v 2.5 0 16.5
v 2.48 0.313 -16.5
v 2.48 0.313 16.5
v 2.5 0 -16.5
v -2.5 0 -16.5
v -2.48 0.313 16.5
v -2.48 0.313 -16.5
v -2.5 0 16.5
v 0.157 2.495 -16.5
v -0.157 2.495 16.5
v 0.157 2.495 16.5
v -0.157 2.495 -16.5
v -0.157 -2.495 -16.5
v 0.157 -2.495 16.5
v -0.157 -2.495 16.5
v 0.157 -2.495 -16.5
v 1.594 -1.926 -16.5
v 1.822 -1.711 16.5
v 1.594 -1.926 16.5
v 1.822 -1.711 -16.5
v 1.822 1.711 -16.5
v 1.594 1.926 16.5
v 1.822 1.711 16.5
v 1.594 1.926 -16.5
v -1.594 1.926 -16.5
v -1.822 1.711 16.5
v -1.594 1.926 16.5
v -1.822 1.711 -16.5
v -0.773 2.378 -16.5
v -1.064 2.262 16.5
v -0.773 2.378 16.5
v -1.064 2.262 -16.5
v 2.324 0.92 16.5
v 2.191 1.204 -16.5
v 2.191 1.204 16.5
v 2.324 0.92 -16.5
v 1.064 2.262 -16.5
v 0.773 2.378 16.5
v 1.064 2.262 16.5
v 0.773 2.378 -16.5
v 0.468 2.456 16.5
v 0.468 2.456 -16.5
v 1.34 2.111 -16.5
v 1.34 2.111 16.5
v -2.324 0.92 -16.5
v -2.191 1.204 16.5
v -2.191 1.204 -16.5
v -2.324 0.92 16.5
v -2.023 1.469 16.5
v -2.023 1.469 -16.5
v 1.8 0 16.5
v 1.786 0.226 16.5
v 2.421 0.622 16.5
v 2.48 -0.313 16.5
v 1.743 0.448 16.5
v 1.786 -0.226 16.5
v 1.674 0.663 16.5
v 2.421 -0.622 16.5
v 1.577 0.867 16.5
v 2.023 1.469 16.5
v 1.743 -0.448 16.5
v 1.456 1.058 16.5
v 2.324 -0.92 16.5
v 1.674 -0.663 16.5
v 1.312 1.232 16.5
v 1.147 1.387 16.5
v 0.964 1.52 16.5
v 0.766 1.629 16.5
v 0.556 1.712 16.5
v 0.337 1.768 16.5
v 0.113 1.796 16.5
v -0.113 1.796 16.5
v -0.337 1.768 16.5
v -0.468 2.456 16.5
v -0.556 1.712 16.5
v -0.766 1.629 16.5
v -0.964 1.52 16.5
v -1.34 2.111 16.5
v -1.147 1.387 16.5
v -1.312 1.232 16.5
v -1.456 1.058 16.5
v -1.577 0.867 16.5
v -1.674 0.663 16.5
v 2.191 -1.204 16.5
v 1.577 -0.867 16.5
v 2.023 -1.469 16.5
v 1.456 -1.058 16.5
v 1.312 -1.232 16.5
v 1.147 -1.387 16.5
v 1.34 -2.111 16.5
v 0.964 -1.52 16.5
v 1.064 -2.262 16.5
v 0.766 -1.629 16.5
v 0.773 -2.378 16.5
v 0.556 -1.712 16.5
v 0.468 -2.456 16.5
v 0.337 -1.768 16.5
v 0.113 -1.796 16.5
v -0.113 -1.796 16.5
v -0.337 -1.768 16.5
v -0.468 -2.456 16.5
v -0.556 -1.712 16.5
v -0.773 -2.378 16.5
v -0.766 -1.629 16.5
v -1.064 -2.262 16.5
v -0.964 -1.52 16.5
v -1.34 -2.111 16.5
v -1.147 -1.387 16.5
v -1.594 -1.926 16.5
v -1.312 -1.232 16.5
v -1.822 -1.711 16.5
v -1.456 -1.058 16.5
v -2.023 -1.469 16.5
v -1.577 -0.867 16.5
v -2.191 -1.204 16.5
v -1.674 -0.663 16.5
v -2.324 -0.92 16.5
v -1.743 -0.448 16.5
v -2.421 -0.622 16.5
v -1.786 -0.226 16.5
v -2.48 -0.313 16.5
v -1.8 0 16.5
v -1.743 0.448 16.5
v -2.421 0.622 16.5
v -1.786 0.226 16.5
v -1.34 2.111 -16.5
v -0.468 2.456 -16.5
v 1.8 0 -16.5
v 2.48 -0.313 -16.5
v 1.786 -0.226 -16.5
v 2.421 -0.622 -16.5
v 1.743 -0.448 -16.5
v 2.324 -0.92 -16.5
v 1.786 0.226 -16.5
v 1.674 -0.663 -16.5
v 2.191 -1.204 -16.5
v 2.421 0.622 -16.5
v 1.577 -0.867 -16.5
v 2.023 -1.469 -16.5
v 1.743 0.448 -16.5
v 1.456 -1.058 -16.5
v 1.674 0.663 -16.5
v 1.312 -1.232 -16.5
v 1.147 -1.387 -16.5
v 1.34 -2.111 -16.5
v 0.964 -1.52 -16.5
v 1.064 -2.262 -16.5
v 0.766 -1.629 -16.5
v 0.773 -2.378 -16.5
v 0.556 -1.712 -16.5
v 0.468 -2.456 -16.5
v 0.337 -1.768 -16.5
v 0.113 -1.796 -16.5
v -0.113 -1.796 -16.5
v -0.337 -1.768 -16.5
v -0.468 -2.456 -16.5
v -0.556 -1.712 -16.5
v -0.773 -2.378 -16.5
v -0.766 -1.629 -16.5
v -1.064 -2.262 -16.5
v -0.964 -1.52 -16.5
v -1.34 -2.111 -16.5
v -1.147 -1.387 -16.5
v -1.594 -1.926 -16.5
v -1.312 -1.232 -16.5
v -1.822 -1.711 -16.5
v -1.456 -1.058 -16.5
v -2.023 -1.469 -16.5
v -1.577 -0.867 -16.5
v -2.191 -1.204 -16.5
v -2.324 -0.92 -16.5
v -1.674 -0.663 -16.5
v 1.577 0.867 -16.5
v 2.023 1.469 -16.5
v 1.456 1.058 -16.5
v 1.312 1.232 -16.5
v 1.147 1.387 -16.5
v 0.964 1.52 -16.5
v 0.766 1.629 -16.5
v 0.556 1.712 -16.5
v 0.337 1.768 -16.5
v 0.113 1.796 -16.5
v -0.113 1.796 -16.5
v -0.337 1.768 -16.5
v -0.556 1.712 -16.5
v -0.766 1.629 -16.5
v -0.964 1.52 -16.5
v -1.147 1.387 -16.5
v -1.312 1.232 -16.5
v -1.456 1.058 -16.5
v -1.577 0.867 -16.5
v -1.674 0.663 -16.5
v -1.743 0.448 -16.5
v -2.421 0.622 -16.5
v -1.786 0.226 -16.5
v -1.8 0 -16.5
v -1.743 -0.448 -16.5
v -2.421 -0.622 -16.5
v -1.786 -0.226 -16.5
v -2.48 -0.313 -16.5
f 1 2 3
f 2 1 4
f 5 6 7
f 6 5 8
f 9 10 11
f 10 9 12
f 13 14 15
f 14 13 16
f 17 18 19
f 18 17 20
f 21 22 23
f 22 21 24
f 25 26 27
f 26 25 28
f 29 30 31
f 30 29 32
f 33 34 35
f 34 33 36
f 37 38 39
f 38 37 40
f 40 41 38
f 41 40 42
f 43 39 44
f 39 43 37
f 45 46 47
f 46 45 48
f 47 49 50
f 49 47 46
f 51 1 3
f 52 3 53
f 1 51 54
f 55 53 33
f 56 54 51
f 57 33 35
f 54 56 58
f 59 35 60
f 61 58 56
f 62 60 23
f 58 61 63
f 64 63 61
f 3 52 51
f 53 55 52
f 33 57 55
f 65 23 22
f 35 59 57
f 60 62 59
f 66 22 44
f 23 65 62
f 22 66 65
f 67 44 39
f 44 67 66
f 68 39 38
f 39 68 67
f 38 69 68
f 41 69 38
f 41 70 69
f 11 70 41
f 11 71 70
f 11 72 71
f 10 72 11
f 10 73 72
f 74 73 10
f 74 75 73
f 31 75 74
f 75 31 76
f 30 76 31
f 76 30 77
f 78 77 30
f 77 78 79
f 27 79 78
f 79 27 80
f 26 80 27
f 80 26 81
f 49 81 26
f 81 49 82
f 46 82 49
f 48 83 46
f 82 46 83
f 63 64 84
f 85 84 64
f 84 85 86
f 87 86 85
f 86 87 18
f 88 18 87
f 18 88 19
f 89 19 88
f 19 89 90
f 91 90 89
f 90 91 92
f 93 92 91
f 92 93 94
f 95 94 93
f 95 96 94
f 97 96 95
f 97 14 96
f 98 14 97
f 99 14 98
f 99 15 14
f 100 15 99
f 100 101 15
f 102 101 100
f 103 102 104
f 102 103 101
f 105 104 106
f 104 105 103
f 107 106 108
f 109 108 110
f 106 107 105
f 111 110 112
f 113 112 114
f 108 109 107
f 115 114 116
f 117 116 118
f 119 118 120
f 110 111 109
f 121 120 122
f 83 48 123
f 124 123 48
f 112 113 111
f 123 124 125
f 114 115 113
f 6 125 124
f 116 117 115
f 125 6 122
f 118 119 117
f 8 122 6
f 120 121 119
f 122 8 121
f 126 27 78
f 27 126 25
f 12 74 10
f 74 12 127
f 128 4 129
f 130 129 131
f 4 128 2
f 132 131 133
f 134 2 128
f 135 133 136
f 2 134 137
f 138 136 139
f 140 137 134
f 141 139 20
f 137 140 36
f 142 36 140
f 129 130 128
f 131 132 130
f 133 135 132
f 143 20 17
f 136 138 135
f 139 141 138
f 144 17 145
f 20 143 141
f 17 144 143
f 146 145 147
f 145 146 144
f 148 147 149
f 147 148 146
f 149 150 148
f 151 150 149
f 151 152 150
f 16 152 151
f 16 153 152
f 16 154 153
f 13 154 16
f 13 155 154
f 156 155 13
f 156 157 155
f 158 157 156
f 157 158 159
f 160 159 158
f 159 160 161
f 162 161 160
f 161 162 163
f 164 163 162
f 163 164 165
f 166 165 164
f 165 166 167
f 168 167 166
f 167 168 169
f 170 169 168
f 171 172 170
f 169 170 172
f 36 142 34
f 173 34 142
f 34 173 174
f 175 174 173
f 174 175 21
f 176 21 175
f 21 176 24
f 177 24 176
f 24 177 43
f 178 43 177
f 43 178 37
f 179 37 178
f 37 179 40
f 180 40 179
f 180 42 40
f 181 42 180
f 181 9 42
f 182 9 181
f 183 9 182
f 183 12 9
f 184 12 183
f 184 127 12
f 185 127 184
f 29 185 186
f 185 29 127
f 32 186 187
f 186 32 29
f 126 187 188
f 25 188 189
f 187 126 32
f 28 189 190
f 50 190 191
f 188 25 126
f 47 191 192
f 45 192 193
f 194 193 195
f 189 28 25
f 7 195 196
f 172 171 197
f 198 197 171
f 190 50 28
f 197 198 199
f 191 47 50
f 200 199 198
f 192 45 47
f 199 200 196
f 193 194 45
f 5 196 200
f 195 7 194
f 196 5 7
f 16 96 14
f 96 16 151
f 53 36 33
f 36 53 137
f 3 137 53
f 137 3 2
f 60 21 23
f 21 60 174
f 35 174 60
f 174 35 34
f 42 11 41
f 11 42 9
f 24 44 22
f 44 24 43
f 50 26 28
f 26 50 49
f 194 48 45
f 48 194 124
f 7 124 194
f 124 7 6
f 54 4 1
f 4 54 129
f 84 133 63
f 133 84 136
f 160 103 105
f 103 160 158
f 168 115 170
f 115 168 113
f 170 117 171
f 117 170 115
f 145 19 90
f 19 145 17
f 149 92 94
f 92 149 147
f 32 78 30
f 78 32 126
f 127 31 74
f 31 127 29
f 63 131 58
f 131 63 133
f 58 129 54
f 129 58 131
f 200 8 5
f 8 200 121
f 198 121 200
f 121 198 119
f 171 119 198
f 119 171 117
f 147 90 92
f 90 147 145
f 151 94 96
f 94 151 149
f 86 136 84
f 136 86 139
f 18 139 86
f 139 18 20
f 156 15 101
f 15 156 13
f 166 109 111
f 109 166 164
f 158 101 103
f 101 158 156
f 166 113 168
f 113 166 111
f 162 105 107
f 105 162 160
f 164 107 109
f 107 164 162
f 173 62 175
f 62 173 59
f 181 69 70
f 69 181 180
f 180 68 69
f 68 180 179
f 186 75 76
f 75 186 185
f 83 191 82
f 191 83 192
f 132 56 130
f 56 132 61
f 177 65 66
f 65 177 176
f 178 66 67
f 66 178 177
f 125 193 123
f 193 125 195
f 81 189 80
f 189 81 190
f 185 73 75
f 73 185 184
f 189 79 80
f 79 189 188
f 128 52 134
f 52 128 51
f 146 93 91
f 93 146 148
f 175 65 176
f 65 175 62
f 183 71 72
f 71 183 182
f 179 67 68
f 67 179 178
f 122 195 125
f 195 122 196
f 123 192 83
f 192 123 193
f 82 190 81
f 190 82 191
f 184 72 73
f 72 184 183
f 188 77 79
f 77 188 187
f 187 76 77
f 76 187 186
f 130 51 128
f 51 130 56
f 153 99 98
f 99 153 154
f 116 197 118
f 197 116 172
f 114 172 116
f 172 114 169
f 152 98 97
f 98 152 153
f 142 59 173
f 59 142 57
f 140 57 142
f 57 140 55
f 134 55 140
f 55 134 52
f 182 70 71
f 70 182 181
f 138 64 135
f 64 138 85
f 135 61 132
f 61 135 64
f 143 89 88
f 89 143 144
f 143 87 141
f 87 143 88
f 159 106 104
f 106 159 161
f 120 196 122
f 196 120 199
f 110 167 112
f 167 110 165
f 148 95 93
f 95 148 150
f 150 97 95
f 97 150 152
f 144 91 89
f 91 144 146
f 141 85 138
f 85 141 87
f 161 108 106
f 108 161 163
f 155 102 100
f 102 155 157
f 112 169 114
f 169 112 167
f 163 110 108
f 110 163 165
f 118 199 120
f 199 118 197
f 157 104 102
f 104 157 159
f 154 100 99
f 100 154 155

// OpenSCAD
$fn = 50;


difference() {
	union() {
		translate(v = [0, 0, -16.5000000000]) {
			cylinder(h = 33, r = 2.5000000000);
		}
	}
	union() {
		translate(v = [0, 0, -100.0000000000]) {
			cylinder(h = 200, r = 1.8000000000);
		}
	}
}
